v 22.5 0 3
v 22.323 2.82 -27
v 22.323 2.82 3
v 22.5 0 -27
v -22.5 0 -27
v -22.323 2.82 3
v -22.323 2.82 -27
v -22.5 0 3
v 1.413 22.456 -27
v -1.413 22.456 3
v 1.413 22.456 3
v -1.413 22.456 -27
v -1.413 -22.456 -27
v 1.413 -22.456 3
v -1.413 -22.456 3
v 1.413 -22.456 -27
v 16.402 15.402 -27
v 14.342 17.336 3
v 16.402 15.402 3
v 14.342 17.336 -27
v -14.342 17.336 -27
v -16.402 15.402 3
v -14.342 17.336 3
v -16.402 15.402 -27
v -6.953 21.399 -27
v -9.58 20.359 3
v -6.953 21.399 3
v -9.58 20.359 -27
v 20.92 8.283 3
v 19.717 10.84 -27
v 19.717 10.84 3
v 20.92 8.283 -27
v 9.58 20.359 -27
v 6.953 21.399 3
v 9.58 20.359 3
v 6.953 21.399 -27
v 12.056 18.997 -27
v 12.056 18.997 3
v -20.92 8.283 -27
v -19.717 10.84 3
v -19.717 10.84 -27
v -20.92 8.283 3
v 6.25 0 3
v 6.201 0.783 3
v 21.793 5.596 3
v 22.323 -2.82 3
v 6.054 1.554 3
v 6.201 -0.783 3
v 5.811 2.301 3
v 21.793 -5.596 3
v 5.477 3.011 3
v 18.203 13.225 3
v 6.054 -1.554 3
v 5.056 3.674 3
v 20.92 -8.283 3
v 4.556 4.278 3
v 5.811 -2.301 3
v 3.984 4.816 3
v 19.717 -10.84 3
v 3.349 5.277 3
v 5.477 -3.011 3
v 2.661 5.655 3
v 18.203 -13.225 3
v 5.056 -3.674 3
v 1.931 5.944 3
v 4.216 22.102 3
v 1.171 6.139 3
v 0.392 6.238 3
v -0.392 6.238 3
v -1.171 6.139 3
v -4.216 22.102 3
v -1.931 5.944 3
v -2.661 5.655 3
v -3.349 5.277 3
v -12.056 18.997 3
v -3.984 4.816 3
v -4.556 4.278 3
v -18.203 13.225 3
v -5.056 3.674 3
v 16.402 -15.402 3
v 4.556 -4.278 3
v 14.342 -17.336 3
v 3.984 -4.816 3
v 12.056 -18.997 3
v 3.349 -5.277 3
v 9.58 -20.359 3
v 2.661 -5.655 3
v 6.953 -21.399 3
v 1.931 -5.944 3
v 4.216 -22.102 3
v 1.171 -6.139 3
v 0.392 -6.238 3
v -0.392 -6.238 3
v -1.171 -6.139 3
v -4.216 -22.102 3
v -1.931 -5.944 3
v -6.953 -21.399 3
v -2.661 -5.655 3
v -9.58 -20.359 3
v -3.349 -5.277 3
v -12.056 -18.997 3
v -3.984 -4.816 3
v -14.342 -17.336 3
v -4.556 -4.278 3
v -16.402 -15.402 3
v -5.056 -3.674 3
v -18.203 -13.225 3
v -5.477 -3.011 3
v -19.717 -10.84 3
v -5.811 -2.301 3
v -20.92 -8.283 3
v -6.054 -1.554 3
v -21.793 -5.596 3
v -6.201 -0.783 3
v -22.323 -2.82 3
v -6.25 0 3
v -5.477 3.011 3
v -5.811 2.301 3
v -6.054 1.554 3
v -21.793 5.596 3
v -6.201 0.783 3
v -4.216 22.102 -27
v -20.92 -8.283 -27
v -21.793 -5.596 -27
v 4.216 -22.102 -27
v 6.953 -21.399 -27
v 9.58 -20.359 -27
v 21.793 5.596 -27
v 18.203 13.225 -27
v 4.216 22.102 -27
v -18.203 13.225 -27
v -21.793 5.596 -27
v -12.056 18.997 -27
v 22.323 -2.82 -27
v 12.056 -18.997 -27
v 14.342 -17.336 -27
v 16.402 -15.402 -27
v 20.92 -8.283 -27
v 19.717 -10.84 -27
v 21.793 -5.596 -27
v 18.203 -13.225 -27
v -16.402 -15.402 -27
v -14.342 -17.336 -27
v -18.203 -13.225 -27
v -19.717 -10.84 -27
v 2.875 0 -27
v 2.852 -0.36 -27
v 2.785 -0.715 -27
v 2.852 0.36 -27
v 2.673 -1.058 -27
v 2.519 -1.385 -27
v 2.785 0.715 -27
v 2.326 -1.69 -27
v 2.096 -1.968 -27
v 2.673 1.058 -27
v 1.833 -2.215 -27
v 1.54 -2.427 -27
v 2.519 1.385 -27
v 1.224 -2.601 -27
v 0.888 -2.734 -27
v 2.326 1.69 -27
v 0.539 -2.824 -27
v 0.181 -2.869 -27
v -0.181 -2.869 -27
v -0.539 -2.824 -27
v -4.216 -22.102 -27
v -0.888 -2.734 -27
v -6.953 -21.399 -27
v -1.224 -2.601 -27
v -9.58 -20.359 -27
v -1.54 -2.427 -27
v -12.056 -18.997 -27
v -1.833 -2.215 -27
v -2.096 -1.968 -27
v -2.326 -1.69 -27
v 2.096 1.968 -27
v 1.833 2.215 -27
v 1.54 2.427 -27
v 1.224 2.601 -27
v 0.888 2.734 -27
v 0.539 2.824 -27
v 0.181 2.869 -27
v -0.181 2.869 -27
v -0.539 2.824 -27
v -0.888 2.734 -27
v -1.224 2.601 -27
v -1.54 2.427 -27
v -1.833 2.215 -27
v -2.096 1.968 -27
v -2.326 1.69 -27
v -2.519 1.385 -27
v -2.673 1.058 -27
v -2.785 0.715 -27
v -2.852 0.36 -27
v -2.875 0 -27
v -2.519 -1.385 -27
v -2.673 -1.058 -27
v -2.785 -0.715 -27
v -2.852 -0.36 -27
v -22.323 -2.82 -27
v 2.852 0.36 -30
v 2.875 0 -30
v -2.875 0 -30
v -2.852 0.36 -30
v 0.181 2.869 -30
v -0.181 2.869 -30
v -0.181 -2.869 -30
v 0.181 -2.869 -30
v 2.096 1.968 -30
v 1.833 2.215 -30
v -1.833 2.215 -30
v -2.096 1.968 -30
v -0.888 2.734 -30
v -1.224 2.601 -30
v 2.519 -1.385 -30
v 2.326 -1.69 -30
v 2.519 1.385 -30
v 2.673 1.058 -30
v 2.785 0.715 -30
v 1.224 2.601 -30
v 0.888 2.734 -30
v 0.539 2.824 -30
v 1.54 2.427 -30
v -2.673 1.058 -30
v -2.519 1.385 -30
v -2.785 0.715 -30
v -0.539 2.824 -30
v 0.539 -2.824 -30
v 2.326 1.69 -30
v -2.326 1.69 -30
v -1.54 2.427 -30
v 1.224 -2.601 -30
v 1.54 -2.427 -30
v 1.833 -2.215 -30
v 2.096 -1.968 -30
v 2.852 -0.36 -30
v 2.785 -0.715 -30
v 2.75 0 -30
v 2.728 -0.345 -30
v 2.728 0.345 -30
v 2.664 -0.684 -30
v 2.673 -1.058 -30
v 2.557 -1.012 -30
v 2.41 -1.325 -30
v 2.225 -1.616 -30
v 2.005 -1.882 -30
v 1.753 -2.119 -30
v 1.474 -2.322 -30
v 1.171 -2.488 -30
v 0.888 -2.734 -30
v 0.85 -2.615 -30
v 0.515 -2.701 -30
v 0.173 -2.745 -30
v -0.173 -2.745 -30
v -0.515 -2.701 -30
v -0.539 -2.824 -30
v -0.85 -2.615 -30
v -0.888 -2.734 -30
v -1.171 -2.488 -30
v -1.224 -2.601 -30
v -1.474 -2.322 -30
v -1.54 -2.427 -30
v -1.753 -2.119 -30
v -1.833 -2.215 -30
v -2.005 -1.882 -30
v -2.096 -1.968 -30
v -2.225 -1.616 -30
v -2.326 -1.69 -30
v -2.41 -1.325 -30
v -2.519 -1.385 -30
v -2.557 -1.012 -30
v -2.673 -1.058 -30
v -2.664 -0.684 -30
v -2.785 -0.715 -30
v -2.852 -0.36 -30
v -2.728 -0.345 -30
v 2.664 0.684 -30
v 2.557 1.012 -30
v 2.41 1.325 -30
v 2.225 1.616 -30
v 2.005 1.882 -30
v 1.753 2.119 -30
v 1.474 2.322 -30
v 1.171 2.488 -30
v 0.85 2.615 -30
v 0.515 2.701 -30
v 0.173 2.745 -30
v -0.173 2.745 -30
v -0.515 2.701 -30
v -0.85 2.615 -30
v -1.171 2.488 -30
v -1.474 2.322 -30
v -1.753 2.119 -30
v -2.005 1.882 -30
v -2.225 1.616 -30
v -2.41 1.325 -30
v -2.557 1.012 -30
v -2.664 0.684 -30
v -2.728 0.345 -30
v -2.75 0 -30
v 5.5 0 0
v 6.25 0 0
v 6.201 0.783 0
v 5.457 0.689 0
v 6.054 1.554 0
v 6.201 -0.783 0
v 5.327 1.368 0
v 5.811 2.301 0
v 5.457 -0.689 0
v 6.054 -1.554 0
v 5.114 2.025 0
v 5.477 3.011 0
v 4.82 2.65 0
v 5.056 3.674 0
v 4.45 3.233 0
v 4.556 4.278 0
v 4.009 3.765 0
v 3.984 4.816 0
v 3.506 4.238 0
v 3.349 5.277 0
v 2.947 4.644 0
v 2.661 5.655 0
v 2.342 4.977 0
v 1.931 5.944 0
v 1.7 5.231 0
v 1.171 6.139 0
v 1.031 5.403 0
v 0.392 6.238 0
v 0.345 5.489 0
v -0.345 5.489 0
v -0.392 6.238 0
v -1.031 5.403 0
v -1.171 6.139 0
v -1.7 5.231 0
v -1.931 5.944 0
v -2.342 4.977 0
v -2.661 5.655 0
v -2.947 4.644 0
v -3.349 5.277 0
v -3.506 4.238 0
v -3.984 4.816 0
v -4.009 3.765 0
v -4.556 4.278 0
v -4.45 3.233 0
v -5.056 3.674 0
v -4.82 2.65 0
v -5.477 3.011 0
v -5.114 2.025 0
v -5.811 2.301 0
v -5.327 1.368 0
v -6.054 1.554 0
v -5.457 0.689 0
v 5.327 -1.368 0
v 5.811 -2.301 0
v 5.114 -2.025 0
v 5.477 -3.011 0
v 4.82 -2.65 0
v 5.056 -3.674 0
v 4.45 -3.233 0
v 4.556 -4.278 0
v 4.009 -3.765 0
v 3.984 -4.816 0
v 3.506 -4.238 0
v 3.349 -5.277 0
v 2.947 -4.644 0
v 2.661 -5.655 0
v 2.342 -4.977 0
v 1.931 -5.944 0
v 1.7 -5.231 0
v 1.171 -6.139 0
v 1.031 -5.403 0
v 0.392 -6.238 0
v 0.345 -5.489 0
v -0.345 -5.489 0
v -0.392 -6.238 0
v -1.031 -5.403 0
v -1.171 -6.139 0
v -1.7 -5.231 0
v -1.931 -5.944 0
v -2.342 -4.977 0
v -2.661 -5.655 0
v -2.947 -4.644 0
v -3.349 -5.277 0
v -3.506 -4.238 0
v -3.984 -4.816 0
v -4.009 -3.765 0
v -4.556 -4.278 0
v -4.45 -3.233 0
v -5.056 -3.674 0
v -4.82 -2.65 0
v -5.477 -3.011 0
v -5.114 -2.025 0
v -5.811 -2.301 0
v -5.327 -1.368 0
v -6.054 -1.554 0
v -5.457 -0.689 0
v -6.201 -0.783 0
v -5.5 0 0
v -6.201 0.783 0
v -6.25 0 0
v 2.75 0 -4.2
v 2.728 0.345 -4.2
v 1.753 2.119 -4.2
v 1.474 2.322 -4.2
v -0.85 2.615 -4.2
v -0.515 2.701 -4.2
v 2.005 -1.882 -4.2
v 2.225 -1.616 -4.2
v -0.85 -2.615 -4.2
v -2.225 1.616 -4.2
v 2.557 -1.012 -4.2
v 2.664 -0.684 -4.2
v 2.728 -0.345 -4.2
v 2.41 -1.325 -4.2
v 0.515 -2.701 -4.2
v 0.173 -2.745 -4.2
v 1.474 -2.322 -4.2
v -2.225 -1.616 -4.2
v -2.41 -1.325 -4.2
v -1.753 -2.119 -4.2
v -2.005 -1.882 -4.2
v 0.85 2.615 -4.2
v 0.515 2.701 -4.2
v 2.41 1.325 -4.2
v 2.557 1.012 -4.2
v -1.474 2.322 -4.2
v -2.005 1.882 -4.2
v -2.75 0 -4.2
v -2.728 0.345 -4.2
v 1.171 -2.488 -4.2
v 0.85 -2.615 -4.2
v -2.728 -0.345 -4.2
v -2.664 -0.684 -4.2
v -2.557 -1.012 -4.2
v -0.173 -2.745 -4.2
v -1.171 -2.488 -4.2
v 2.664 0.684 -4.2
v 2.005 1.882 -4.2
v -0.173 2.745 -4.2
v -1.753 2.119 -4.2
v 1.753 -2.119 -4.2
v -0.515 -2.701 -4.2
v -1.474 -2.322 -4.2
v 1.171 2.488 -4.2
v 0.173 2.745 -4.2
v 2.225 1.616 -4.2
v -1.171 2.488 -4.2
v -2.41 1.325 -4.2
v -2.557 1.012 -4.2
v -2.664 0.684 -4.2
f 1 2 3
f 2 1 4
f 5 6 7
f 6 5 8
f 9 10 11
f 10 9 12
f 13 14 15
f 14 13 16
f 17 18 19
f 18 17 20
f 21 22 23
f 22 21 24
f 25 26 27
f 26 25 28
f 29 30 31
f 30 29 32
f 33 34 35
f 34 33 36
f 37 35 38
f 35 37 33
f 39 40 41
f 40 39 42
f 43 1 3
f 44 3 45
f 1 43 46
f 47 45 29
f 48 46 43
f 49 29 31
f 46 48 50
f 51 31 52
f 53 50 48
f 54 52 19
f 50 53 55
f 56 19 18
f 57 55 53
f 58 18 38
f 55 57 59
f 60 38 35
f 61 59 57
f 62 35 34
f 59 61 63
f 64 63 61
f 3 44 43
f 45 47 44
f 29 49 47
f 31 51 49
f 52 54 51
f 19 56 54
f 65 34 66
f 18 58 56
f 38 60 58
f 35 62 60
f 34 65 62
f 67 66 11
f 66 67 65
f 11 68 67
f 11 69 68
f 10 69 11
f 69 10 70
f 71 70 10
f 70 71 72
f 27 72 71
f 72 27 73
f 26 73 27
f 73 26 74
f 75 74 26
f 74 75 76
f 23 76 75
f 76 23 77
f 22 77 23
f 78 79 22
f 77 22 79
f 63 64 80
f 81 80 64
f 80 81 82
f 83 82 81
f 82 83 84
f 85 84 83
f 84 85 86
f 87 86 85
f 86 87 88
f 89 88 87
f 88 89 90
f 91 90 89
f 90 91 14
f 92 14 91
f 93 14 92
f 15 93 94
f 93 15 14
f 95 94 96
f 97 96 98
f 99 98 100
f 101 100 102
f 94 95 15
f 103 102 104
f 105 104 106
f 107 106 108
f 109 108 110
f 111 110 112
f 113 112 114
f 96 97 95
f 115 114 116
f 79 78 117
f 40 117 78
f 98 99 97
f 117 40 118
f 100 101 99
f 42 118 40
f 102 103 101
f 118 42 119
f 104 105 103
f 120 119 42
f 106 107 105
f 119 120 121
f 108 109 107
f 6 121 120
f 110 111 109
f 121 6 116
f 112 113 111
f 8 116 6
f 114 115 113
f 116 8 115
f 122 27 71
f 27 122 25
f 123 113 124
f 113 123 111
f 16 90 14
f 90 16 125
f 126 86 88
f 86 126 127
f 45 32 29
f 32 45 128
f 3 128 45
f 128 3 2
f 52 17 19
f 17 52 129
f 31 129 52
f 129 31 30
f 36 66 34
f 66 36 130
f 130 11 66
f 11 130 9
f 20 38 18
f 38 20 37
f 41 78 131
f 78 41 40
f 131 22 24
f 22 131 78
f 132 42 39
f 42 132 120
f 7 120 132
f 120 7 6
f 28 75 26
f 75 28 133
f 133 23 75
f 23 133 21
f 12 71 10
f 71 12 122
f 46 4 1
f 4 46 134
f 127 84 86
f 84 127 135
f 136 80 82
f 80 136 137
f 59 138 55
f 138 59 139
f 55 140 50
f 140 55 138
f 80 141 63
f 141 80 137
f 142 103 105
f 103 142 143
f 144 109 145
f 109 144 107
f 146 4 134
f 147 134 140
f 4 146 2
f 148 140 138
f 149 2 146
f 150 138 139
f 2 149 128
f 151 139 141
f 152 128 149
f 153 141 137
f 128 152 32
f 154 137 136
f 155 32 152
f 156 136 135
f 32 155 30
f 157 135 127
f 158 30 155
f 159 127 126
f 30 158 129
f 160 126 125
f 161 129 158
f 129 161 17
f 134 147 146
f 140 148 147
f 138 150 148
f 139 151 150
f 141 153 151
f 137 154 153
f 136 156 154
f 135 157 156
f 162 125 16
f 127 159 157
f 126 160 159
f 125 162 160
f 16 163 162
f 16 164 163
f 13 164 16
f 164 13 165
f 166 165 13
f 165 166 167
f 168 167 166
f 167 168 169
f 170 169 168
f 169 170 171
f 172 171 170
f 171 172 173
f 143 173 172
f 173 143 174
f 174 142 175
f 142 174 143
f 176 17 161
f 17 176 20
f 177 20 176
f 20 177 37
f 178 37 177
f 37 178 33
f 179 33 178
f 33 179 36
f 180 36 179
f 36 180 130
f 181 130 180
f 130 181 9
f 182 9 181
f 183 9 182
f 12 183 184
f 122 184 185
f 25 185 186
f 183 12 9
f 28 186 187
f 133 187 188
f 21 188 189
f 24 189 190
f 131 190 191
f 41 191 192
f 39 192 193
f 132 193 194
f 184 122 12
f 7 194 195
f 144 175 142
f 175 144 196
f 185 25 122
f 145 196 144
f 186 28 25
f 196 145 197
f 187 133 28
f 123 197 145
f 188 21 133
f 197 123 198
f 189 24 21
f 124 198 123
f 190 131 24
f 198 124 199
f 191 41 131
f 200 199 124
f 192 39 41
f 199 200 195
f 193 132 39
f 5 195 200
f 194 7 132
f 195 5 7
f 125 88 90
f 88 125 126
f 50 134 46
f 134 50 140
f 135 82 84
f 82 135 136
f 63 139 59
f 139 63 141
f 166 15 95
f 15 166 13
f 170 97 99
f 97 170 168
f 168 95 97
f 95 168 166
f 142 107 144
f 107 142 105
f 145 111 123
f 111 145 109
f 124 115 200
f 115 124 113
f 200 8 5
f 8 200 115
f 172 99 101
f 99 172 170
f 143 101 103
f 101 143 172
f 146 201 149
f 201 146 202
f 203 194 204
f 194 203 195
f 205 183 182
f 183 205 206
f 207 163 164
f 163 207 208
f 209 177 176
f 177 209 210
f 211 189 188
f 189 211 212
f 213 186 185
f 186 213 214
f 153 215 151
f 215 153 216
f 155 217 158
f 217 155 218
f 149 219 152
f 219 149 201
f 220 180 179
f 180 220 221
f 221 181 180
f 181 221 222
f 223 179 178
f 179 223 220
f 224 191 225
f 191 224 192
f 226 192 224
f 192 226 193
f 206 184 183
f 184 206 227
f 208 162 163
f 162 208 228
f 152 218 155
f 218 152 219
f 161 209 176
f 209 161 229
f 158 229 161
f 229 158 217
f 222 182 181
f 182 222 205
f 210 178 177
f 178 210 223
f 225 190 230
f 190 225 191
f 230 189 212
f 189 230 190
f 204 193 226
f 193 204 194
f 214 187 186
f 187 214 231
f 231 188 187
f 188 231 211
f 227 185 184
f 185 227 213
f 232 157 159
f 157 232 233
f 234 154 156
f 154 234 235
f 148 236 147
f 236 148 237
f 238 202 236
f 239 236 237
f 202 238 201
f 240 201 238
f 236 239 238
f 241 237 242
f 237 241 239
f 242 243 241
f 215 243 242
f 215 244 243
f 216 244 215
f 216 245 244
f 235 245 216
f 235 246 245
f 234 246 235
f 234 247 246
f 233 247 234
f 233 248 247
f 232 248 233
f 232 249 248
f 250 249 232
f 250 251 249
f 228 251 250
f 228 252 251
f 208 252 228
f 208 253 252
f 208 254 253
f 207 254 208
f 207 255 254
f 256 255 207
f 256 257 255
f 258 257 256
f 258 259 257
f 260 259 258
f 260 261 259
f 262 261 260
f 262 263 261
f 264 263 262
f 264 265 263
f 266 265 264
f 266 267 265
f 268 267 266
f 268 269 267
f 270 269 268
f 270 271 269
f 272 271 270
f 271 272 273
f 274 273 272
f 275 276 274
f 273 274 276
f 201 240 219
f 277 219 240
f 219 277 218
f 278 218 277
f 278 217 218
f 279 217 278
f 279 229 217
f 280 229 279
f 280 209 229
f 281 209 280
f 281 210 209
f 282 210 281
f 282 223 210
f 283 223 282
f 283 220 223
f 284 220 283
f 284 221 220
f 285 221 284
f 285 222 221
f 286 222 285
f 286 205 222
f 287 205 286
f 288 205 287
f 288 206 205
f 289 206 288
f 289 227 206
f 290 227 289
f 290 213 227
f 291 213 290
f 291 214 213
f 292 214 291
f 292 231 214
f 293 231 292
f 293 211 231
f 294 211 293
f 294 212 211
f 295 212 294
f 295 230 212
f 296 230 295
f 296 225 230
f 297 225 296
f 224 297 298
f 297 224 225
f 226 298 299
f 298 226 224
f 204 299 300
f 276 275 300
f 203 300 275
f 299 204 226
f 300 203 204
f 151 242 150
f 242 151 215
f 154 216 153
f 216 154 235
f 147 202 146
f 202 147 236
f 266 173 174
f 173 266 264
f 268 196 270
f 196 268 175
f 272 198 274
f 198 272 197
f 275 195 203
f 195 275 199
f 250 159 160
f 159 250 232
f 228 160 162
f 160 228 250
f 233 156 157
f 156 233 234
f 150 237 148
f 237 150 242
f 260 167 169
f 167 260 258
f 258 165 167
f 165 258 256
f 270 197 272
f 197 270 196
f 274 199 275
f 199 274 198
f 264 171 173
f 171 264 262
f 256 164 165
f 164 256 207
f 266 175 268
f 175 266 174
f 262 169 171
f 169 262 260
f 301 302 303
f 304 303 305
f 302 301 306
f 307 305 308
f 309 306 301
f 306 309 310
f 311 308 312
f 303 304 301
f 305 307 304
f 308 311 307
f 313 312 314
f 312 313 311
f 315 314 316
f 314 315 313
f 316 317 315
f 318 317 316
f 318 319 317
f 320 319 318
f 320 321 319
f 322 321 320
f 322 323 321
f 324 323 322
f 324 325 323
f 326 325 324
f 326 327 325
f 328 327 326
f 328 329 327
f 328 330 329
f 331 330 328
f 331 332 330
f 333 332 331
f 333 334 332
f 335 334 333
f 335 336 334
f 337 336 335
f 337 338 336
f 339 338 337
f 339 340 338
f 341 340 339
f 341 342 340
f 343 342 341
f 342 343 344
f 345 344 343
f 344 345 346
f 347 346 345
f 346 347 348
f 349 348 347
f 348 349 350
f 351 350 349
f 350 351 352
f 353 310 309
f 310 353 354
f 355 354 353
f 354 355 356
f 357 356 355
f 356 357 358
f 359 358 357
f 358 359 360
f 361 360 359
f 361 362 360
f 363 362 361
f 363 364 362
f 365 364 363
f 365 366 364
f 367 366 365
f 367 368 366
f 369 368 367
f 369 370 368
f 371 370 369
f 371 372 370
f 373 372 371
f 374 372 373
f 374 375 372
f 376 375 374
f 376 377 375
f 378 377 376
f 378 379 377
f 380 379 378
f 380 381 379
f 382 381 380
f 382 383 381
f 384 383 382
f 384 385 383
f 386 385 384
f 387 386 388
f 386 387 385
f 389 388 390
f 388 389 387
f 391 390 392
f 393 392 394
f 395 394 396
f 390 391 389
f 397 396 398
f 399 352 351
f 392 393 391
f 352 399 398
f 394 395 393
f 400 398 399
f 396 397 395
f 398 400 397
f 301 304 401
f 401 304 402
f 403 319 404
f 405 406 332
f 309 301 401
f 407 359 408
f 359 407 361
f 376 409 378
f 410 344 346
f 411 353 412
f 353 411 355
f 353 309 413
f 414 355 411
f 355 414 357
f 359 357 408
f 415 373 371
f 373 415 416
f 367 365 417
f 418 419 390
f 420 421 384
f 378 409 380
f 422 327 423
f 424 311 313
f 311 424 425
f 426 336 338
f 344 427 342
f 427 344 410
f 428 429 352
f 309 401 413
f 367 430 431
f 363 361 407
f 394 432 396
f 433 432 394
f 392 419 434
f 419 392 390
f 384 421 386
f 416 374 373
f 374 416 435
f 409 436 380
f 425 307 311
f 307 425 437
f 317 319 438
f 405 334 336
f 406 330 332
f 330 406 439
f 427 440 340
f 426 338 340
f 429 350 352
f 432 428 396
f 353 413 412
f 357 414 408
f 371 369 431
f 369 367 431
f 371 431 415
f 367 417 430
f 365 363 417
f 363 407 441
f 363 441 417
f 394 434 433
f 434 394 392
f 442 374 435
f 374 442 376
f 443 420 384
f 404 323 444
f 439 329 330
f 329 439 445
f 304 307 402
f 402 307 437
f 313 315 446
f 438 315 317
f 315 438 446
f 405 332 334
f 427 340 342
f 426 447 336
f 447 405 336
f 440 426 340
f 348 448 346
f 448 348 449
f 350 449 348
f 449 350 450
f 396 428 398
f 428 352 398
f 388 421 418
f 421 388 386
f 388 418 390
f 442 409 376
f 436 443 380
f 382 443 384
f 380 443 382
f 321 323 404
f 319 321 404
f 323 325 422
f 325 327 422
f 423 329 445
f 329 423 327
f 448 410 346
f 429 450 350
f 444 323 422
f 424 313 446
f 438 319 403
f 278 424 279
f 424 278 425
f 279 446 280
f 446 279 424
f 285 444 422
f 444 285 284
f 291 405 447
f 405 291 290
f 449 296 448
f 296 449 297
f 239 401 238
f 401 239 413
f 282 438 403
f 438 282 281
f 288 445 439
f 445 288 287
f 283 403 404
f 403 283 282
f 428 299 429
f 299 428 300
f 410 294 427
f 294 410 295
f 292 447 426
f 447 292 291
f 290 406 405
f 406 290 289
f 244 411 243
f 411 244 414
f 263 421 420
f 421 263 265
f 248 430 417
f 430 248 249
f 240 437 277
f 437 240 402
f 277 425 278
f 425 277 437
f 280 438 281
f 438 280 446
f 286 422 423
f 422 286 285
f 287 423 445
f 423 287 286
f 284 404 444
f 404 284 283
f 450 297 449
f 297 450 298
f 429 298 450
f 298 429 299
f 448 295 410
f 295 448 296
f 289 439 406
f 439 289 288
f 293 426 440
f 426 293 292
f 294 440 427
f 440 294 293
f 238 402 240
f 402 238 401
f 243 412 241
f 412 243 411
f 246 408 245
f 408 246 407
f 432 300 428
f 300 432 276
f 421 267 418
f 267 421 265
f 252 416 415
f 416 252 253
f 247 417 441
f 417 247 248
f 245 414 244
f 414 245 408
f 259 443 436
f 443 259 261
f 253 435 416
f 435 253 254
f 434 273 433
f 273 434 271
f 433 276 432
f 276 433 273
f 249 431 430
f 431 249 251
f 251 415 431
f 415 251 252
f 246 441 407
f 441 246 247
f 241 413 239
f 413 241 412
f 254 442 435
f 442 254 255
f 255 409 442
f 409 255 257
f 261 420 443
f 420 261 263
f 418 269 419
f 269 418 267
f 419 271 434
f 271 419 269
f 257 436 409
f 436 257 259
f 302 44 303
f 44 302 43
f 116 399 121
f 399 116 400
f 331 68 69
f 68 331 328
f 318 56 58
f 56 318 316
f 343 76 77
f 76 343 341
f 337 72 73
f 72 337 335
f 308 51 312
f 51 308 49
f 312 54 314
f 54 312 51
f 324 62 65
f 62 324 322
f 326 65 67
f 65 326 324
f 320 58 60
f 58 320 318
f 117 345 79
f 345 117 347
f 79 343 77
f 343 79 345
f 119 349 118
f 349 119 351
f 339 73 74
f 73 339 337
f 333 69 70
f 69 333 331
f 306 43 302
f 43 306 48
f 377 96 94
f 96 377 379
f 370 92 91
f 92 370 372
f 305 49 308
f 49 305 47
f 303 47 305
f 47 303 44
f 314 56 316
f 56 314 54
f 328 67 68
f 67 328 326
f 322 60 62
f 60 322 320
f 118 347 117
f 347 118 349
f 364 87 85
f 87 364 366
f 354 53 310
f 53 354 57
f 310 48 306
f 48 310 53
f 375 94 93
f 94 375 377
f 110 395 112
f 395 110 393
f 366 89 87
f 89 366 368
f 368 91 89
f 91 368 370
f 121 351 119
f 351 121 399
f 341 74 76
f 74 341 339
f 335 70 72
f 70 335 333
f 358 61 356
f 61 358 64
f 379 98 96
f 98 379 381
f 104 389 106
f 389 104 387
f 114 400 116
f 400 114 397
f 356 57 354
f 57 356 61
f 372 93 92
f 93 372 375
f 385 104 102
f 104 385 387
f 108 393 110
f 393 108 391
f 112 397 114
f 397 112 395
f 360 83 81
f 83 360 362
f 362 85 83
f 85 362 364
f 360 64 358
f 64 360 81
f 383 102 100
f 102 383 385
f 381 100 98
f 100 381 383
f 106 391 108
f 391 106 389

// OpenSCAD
$fn = 50;


difference() {
	union() {
		translate(v = [0, 0, -27.0000000000]) {
			cylinder(h = 30, r = 22.5000000000);
		}
		#translate(v = [0, 0, -30.0000000000]) {
			cylinder(h = 30, r = 2.8750000000);
		}
	}
	union() {
		translate(v = [0, 0, 0]) {
			rotate(a = [0, 0, 0]) {
				difference() {
					union() {
						translate(v = [0, 0, -30.0000000000]) {
							cylinder(h = 30, r = 2.2500000000);
						}
						translate(v = [0, 0, -4.2000000000]) {
							cylinder(h = 4.2000000000, r1 = 2.7500000000, r2 = 5.5000000000);
						}
						translate(v = [0, 0, -30.0000000000]) {
							cylinder(h = 30, r = 2.7500000000);
						}
						translate(v = [0, 0, -30.0000000000]) {
							cylinder(h = 30, r = 2.2500000000);
						}
					}
					union();
				}
			}
		}
		#cylinder(h = 3, r = 6.2500000000);
	}
}
